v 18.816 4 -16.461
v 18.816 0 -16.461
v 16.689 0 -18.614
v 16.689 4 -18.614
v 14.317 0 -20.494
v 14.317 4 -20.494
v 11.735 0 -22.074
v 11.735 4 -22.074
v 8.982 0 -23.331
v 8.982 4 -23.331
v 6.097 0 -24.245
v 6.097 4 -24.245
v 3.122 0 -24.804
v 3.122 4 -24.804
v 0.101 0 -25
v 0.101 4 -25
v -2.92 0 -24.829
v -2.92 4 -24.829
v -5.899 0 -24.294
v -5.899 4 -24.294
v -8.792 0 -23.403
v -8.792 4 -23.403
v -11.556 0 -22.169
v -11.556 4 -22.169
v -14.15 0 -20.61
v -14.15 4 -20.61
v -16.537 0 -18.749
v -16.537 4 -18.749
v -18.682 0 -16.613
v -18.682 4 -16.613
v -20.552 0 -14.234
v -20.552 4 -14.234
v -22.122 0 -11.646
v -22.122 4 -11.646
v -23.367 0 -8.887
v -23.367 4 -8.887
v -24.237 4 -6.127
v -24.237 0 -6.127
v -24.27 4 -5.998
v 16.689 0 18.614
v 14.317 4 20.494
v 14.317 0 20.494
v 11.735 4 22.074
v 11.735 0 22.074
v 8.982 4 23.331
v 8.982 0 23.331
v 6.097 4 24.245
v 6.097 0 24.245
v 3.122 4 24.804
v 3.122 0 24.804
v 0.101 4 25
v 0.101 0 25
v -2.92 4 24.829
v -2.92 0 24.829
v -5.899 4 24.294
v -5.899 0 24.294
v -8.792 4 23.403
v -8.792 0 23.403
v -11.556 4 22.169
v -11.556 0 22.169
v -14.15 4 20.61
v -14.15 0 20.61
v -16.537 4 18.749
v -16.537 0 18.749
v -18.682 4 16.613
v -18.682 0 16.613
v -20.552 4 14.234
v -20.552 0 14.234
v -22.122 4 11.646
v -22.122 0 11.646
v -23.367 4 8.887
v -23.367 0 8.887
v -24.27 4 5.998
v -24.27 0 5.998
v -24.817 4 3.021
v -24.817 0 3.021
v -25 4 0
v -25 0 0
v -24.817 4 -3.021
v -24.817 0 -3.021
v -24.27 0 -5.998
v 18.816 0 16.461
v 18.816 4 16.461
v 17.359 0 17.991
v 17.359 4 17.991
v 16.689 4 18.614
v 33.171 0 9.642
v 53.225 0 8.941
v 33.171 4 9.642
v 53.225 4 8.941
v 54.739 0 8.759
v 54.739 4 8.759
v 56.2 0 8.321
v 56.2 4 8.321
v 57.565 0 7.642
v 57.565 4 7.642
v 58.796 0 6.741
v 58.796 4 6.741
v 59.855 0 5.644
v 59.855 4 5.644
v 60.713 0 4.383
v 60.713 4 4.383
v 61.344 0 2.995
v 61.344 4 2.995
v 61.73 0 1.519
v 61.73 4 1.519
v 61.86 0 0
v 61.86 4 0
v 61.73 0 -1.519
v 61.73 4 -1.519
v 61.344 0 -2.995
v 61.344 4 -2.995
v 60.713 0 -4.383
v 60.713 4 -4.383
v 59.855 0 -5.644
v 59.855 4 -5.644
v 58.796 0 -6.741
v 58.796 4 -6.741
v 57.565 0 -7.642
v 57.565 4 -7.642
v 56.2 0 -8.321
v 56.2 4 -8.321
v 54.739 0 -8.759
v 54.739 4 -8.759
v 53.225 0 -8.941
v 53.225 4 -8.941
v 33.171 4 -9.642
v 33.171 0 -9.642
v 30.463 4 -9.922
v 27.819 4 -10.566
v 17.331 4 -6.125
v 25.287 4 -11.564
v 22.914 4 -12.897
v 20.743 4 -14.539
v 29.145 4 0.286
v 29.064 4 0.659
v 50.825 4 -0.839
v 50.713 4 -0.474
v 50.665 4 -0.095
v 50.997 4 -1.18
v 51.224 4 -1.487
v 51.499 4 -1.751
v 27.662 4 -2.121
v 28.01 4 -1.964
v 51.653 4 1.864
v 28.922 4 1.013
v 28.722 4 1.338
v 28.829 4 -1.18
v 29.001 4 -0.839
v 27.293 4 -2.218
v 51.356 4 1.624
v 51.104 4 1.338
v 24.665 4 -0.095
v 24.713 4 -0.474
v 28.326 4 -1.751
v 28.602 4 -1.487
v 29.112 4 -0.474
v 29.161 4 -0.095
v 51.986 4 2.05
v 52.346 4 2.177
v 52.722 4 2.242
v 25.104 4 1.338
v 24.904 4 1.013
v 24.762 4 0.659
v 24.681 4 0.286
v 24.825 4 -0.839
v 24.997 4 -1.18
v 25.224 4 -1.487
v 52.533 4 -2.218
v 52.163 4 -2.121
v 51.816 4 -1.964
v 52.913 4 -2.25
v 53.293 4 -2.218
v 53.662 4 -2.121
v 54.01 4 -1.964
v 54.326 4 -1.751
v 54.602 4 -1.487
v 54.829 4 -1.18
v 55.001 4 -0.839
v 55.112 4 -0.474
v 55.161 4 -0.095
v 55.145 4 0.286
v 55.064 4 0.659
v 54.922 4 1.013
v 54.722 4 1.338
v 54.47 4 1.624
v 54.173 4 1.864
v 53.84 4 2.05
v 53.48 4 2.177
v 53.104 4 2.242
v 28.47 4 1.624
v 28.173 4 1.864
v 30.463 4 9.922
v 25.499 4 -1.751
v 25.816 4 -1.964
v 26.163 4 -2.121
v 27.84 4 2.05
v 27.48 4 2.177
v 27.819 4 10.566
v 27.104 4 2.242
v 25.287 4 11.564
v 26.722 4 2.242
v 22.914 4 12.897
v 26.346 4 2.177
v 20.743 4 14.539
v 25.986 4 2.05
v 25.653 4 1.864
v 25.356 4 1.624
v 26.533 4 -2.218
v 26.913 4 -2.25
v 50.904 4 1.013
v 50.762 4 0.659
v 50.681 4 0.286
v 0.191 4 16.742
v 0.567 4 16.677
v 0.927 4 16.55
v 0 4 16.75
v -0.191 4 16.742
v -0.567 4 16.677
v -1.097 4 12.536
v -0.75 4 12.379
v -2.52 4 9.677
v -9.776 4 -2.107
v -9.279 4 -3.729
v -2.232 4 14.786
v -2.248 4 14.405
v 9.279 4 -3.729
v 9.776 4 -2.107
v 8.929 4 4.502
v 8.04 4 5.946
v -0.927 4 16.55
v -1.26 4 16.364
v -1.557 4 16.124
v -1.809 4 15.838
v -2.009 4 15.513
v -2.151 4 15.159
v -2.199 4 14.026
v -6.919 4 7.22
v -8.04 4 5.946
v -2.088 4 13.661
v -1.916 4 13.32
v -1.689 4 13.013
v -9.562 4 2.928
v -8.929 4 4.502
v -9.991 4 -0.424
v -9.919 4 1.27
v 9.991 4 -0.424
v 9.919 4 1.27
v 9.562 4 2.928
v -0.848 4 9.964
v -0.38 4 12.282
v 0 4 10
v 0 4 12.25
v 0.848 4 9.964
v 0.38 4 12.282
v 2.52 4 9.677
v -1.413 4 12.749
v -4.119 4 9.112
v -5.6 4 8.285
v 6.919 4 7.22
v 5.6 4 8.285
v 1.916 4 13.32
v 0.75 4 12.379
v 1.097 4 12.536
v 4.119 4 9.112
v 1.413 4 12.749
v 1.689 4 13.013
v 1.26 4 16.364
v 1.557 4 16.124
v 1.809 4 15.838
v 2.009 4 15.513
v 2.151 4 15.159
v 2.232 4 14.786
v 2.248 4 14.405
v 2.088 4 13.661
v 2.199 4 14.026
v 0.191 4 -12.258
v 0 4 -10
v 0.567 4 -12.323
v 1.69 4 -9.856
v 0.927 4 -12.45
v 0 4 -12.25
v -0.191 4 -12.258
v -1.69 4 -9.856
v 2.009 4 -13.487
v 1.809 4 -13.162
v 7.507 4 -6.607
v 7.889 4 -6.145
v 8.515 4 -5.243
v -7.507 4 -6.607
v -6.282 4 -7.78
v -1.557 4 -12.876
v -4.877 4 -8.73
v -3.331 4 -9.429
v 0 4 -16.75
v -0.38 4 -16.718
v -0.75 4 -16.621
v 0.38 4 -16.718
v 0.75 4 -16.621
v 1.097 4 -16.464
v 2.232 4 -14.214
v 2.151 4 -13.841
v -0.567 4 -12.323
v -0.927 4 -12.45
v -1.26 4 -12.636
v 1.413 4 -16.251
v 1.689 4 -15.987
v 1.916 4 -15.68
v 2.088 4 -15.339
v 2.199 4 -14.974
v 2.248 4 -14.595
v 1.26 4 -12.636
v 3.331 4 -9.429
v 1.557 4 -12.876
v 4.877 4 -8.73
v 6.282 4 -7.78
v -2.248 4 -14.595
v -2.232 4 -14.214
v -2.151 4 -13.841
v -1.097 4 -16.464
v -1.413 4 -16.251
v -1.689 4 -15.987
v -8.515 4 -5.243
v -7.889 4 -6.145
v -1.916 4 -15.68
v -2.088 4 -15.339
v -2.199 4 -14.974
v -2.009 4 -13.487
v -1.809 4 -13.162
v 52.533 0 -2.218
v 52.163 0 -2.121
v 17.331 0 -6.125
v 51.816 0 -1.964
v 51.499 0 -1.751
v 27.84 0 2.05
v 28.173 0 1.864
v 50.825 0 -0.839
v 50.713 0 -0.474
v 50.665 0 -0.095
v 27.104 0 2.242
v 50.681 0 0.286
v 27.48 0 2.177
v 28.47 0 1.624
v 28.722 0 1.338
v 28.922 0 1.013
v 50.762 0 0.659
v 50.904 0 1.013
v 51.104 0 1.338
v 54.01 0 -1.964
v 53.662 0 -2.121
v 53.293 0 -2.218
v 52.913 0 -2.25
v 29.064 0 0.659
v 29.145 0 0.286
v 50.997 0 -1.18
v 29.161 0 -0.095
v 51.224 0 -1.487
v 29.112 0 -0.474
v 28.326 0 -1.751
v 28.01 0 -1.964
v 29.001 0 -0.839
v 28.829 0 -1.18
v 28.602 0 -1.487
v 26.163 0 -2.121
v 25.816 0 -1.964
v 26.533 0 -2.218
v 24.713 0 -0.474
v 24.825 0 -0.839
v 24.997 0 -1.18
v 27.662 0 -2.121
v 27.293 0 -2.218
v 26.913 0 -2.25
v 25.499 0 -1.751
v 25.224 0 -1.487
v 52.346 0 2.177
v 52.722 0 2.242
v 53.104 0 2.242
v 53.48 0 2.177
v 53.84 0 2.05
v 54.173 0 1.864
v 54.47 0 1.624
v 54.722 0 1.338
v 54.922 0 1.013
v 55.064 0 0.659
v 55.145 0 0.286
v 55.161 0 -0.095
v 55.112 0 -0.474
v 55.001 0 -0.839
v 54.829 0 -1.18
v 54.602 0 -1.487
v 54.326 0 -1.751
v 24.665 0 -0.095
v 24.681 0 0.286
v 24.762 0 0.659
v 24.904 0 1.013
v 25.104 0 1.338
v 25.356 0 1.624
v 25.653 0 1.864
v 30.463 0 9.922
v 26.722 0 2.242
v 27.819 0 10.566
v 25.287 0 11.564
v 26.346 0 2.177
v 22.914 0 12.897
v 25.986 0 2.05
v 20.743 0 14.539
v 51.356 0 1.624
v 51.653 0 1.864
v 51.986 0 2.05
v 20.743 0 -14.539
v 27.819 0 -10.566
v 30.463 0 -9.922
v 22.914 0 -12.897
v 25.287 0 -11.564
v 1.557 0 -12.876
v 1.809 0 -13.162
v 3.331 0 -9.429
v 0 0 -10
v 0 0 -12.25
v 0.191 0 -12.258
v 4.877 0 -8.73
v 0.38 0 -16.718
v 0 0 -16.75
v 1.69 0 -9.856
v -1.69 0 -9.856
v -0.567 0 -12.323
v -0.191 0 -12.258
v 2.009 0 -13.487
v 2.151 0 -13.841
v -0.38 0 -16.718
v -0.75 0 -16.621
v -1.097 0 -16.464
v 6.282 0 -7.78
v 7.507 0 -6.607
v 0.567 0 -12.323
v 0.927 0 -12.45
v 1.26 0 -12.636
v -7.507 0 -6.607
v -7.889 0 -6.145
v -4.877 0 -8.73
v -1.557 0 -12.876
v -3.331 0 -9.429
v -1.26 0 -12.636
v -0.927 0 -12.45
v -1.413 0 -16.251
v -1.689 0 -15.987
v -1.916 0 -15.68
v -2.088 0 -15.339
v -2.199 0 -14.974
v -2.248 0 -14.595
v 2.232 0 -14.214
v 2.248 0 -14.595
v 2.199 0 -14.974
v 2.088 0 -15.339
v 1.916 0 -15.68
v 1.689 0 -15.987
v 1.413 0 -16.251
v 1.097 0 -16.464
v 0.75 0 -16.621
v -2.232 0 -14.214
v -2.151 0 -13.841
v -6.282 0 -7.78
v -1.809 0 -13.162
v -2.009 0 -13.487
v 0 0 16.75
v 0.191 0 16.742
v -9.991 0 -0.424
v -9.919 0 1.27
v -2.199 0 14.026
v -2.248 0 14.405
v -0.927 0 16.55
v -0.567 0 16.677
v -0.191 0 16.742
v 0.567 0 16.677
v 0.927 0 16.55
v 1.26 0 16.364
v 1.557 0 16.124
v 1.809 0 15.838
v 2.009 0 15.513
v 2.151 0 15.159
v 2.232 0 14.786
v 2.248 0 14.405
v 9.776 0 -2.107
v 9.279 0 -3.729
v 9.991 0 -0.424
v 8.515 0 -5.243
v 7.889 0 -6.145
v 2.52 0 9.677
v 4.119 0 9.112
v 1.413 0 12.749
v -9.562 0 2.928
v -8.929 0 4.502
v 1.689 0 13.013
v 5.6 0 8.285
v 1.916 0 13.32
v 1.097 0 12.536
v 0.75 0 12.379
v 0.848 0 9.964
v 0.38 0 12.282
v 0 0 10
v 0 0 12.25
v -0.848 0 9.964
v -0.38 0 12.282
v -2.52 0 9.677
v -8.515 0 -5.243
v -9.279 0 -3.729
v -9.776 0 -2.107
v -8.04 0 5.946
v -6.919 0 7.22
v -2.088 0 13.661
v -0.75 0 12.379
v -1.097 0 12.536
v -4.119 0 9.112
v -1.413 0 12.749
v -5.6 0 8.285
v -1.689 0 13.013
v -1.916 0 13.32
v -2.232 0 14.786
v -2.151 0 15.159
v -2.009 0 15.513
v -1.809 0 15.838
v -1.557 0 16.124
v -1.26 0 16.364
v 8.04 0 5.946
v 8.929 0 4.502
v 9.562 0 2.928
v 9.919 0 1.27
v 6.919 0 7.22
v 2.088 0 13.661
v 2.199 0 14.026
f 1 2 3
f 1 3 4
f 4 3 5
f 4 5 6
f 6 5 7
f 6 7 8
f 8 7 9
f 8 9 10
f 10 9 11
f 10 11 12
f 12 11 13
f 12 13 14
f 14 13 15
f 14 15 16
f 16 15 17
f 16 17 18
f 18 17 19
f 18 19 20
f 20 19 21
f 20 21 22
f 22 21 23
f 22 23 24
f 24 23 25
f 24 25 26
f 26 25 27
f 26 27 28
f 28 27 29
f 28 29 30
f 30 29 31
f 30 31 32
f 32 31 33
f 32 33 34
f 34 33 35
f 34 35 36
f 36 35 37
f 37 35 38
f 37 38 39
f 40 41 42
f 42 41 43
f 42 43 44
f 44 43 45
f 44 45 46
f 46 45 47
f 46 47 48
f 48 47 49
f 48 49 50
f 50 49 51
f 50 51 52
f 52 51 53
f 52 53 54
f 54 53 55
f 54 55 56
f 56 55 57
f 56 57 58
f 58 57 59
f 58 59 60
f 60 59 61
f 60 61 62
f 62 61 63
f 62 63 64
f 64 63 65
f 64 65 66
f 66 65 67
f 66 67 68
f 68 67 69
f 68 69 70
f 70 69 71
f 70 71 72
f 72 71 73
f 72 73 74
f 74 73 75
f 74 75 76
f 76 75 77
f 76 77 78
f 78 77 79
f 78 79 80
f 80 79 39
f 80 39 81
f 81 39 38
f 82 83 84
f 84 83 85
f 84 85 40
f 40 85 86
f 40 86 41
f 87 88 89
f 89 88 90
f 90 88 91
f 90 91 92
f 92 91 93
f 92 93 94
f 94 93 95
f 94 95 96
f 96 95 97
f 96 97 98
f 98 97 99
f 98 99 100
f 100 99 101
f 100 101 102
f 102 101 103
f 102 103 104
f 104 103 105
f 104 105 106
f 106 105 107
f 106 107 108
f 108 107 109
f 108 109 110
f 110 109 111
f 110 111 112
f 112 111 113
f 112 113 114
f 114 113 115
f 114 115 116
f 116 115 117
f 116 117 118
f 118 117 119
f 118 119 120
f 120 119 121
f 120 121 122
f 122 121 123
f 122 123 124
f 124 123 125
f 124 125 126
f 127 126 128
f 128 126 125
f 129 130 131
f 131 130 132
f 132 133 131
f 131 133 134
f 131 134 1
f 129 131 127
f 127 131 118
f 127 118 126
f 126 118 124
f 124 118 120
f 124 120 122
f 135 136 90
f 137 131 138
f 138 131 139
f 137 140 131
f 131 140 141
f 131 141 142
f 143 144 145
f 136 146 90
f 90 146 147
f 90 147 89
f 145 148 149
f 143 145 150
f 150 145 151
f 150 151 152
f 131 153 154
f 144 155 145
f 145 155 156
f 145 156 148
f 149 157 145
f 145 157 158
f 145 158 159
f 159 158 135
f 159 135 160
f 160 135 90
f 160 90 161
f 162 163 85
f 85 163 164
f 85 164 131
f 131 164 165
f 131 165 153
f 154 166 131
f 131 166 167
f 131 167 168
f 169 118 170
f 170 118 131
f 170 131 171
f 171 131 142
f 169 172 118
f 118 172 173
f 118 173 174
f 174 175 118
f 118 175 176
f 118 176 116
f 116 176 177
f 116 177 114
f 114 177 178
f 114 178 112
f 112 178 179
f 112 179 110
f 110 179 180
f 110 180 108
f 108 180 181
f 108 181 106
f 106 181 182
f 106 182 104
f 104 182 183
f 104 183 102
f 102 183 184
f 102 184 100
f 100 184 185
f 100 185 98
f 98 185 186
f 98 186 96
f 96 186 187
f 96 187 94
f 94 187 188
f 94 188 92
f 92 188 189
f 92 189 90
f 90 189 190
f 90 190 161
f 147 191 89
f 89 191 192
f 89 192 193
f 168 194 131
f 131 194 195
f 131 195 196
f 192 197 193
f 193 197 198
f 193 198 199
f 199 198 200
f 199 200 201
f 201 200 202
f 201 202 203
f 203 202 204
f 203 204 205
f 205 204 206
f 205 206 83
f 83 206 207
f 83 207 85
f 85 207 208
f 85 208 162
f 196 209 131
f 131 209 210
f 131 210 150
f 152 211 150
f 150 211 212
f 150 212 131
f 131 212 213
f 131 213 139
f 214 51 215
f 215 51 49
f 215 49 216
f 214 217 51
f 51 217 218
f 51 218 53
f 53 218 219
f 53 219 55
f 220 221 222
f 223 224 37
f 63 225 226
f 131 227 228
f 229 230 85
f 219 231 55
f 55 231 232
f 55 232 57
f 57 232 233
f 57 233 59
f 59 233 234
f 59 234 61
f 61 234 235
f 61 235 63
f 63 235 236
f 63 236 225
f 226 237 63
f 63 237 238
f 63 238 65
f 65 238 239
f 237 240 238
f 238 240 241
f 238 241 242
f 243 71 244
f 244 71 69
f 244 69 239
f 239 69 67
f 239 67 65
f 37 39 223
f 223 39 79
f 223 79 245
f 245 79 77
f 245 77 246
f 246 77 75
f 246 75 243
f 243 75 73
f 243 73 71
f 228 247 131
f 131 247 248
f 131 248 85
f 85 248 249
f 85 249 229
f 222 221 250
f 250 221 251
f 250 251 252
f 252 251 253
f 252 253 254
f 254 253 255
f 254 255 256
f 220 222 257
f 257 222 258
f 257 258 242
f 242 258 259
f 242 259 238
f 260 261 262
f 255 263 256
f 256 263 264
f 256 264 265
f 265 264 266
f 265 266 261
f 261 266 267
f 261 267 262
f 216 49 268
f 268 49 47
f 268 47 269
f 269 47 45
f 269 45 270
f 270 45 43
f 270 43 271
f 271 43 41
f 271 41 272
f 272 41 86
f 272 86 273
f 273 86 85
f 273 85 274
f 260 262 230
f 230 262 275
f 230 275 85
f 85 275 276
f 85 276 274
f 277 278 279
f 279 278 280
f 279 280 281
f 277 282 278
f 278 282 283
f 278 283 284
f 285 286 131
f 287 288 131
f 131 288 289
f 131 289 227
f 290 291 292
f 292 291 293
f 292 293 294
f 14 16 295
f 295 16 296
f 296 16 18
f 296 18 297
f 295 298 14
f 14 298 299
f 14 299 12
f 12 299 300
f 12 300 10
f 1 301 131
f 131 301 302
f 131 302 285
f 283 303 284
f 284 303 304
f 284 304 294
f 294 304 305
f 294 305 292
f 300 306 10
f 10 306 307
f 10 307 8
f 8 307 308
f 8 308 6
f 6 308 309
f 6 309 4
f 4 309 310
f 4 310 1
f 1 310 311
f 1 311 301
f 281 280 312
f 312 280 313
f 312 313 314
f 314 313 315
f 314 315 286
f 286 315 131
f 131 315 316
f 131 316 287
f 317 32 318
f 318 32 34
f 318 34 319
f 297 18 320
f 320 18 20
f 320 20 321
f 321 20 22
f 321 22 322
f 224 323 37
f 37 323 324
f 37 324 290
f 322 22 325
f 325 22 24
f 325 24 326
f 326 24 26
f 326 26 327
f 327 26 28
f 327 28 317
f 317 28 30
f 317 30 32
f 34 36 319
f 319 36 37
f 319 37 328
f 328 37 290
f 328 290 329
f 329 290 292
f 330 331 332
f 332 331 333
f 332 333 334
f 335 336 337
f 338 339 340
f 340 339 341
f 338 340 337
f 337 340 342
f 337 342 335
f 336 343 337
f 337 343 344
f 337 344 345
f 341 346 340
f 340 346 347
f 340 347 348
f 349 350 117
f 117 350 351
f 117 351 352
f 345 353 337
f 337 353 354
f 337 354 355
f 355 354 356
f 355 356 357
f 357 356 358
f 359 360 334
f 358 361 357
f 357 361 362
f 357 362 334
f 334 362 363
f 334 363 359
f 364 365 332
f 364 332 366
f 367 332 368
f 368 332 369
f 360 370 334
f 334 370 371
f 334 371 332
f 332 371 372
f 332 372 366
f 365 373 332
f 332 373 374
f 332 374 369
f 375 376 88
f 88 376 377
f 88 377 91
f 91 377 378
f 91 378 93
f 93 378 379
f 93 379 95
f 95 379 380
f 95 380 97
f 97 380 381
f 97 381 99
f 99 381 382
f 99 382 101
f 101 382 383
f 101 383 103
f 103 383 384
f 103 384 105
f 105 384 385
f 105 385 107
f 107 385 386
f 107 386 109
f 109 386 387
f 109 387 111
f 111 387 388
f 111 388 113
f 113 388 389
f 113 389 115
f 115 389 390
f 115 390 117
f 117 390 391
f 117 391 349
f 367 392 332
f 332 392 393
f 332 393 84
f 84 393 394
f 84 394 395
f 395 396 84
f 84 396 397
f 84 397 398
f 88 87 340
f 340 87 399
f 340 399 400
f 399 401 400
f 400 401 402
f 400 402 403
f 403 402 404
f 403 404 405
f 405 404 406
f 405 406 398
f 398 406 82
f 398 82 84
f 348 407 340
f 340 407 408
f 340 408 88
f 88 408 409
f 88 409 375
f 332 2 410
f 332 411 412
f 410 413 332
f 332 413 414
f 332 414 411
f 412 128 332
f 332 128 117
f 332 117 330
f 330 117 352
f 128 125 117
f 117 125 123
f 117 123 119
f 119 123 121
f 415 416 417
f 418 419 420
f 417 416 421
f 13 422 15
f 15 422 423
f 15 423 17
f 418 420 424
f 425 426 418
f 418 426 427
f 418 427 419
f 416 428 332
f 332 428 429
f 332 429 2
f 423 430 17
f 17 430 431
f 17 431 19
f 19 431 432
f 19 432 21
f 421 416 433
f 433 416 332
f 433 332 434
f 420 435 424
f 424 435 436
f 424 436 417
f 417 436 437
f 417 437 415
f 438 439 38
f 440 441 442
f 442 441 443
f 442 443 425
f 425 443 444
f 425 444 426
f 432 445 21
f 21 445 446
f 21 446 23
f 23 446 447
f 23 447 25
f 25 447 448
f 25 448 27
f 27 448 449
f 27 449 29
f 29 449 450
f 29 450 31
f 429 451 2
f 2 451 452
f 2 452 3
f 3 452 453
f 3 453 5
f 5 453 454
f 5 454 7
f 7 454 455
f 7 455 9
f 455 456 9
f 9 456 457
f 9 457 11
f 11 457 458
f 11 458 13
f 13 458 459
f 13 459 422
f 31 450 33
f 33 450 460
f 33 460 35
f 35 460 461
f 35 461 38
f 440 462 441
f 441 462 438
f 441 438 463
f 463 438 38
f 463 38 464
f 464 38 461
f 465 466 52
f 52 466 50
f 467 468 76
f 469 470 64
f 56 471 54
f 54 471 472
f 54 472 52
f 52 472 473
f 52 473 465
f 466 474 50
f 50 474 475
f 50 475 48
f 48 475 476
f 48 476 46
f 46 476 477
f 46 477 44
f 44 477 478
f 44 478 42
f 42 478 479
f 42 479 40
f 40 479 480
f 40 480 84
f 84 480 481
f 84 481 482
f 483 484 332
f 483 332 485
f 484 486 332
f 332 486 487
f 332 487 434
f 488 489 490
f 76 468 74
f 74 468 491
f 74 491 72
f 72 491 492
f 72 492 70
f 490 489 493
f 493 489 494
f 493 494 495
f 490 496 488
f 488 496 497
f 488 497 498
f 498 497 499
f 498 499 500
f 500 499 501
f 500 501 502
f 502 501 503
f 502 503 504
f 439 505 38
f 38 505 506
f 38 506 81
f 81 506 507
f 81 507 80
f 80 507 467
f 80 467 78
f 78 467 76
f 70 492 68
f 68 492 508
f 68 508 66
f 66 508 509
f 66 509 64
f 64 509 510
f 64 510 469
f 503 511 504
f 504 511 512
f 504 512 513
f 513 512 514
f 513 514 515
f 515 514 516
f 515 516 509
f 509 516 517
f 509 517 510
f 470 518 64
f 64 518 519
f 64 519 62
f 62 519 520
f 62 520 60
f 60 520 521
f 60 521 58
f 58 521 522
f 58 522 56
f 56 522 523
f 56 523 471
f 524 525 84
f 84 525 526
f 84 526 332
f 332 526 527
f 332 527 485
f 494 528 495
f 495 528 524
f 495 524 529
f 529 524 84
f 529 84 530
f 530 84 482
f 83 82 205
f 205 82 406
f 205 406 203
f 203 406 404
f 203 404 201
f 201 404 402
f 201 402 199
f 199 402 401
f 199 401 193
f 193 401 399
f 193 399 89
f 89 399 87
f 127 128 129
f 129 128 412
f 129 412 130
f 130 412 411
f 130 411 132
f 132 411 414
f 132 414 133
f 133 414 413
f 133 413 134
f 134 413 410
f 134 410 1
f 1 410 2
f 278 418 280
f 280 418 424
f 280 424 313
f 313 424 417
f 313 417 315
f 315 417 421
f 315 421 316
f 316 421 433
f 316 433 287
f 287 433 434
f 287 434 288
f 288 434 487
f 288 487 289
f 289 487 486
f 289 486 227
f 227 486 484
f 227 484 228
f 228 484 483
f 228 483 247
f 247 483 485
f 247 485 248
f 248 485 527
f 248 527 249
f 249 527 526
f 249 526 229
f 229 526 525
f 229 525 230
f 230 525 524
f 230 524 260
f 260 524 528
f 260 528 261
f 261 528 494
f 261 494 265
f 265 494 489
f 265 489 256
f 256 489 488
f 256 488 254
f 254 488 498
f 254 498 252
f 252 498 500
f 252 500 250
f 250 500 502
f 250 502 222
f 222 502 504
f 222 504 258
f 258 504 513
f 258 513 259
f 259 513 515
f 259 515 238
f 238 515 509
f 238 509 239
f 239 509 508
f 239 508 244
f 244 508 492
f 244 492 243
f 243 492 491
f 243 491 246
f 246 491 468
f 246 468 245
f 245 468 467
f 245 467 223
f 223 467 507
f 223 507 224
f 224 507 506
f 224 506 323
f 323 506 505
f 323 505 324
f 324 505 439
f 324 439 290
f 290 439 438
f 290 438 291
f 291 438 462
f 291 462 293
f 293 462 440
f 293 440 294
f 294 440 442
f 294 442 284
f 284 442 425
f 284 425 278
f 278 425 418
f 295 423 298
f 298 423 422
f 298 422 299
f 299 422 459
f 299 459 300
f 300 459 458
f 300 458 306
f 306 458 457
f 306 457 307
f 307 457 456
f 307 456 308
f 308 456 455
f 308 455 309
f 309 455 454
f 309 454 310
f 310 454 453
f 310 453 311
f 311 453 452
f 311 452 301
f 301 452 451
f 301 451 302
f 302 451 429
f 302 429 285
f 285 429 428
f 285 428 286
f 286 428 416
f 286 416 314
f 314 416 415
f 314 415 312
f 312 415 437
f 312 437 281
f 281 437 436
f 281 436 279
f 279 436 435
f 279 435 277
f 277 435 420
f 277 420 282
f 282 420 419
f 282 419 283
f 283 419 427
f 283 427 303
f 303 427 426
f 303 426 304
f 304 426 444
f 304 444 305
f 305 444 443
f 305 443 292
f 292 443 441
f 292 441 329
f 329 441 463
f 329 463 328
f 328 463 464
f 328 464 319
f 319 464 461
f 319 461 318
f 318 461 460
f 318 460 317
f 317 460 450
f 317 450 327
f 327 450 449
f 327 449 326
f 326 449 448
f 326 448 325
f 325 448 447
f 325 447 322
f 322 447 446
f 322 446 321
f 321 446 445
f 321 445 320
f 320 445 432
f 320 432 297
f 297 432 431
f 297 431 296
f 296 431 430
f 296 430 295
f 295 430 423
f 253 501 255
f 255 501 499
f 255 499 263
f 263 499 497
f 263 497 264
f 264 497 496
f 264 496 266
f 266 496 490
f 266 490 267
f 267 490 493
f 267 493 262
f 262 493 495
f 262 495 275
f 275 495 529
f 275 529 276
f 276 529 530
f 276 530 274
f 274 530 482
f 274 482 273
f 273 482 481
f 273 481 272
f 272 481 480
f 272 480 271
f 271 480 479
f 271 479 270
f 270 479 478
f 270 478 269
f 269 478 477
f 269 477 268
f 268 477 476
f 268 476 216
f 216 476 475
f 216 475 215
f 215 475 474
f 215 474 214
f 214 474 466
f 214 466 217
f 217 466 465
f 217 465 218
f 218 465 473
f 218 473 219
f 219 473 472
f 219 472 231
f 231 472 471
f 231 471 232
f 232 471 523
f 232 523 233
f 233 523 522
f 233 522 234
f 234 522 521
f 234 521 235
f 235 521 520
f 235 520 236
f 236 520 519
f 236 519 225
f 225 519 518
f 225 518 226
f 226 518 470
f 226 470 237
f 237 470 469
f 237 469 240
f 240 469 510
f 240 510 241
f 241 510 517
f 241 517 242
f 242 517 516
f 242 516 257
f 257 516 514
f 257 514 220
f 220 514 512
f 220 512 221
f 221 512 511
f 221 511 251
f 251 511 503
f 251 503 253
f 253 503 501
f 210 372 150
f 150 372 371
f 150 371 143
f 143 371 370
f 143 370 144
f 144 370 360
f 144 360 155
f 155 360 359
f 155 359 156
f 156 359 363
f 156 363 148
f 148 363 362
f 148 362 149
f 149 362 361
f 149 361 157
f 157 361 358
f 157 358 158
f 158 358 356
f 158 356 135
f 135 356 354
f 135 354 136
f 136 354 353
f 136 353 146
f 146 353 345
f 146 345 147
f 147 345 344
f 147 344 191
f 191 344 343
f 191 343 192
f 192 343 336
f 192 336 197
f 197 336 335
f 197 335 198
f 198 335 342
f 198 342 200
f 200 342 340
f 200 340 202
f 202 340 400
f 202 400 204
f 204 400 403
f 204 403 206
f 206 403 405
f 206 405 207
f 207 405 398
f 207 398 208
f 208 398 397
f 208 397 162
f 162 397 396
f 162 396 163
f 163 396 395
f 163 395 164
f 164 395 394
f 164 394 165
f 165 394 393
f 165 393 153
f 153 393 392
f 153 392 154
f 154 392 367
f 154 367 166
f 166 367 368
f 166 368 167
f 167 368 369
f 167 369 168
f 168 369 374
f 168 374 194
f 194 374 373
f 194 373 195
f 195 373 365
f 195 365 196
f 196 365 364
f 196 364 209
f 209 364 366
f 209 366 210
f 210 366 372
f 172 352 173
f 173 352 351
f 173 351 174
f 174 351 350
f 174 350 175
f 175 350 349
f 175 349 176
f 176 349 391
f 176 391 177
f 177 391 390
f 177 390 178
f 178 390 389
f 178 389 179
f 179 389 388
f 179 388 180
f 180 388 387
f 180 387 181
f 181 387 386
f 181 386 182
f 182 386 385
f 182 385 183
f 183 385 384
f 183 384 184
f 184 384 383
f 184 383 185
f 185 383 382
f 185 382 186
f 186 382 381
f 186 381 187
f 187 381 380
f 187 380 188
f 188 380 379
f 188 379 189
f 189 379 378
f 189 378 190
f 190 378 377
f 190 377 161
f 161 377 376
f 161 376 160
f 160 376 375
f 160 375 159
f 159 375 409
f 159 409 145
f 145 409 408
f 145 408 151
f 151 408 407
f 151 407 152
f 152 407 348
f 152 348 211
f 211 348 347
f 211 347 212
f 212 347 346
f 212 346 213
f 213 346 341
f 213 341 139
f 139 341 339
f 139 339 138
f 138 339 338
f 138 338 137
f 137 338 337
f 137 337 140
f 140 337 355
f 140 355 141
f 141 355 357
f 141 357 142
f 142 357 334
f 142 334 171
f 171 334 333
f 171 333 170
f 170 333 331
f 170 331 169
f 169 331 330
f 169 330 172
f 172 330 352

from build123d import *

# Parameters (mm, degrees)
BOSS_EXTRUDE1_DEPTH = 4
FILLET1_R           = 20
SKETCH1_R           = 10
SKETCH1_R_2         = 2.25
CUT_EXTRUDE3_DEPTH  = 131.855321132


with BuildPart() as part:
    # Sketch3 → Boss-Extrude1 (new body)
    with BuildSketch(Plane(origin=(0, 0, 0), x_dir=(1, 0, 0), z_dir=(0, 1, 0))):
        with BuildLine():
            Line((22.912878475, 10), (53.225121597, 8.941473145))
            ThreePointArc((53.225121597, 8.941473145), (61.859801844, 0), (53.225121597, -8.941473145))
            Line((53.225121597, -8.941473145), (22.912878475, -10))
            ThreePointArc((22.912878475, -10), (-25, 0), (22.912878475, 10))
        make_face()
    extrude(amount=BOSS_EXTRUDE1_DEPTH)

    # Fillet1
    fillet1_edges = [part.edges().sort_by_distance(p)[0] for p in [
        (22.912878475, 2, -10),
        (22.912878475, 2, 10),
    ]]
    fillet(fillet1_edges, radius=FILLET1_R)

    # Sketch1 → Cut-Extrude3 (cut, through all)
    with BuildSketch(Plane(origin=(103.38268991, 0, 0), x_dir=(1, 0, 0), z_dir=(0, 1, 0))):
        with Locations(Location((-103.38268991, 0, 0), (0, 0, 270))):
            Circle(SKETCH1_R)
        with Locations(Location((-103.38268991, 14.5, 0), (0, 0, 270))):
            Circle(SKETCH1_R_2)
        with Locations(Location((-76.469811435, 0, 0), (0, 0, 90))):
            Circle(SKETCH1_R_2)
        with Locations(Location((-50.469811435, 0, 0), (0, 0, 90))):
            Circle(SKETCH1_R_2)
        with Locations(Location((-103.38268991, -14.5, 0), (0, 0, 270))):
            Circle(SKETCH1_R_2)
    extrude(amount=CUT_EXTRUDE3_DEPTH, mode=Mode.SUBTRACT)


solid = part.part
